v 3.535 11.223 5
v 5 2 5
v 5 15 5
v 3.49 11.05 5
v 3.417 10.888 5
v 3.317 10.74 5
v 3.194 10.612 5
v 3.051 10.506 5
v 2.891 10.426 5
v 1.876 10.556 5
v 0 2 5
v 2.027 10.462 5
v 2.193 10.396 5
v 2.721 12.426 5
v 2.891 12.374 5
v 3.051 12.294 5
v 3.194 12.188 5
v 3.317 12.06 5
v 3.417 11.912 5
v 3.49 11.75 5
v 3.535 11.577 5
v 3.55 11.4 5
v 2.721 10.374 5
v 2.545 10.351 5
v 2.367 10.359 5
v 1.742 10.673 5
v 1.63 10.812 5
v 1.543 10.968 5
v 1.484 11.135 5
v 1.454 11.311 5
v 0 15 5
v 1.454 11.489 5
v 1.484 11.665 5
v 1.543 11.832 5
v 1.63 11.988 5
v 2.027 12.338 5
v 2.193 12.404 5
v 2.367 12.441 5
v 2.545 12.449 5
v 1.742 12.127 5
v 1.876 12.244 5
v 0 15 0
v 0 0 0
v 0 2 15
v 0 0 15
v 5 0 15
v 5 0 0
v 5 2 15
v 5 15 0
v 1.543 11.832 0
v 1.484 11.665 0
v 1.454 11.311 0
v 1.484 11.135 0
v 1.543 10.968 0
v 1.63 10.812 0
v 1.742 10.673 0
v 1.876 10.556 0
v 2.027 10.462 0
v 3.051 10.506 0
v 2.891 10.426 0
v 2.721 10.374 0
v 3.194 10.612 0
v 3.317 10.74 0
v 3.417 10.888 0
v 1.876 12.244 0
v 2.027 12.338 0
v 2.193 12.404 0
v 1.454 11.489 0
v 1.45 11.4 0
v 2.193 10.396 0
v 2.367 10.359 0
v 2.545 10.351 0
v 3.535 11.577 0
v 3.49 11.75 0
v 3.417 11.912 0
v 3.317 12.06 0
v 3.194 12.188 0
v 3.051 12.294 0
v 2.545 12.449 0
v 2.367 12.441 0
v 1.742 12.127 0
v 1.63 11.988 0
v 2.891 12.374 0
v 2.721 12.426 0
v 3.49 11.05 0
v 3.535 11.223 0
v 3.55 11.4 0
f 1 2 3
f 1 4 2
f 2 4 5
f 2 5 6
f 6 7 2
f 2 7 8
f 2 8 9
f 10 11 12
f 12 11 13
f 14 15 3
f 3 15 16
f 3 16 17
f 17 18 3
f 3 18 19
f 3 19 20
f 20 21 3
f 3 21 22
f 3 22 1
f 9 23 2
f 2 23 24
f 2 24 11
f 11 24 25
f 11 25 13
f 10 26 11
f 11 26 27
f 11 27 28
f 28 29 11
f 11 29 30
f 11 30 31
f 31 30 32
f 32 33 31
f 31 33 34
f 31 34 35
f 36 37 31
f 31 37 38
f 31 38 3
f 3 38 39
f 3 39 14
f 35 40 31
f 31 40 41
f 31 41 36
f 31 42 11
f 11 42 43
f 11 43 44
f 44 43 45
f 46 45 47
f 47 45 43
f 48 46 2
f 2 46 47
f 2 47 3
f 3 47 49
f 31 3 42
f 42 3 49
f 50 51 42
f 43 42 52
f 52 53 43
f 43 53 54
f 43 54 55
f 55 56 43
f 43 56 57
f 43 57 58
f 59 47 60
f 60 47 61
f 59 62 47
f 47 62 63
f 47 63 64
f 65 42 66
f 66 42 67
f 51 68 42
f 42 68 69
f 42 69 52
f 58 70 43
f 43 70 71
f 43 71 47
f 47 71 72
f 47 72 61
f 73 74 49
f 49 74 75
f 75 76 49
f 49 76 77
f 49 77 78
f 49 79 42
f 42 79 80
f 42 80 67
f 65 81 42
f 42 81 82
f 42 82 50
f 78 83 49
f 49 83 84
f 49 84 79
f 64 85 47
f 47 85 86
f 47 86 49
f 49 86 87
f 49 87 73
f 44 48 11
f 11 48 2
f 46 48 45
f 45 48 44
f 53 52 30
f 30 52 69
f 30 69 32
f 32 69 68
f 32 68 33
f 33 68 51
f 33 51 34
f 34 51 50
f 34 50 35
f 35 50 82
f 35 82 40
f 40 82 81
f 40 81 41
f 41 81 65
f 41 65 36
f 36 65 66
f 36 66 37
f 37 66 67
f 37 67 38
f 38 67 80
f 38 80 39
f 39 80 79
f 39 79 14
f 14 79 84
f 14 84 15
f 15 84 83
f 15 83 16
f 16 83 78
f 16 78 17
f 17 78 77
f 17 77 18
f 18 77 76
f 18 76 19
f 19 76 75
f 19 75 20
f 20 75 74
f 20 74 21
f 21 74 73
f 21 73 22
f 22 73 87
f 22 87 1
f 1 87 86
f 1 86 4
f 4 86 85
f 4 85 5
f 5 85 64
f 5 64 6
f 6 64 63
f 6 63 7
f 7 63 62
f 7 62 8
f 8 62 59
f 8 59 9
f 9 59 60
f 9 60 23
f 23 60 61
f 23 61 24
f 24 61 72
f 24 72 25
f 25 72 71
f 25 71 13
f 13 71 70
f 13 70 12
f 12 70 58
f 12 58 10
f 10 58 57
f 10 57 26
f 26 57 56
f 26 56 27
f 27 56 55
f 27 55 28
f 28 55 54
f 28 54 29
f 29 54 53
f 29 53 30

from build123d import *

# Parameters (mm, degrees)
SKETCH1_W           = 5
SKETCH1_H           = 15
BOSS_EXTRUDE1_DEPTH = 5
SKETCH2_W           = 5
SKETCH2_H           = 2
BOSS_EXTRUDE2_DEPTH = 10
SKETCH3_R           = 1.05
CUT_EXTRUDE1_DEPTH  = 10


with BuildPart() as part:
    # Sketch1 → Boss-Extrude1 (new body)
    with BuildSketch(Plane.XY):
        with Locations((2.5, 7.5)):
            Rectangle(SKETCH1_W, SKETCH1_H)
    extrude(amount=BOSS_EXTRUDE1_DEPTH)

    # Sketch2 → Boss-Extrude2 (add)
    with BuildSketch(Plane.XY.offset(5)):
        with Locations((2.5, 1)):
            Rectangle(SKETCH2_W, SKETCH2_H)
    extrude(amount=BOSS_EXTRUDE2_DEPTH)

    # Sketch3 → Cut-Extrude1 (cut)
    with BuildSketch(Plane.XY.offset(5)):
        with Locations((2.5, 11.4)):
            Circle(SKETCH3_R)
    extrude(amount=-CUT_EXTRUDE1_DEPTH, mode=Mode.SUBTRACT)


solid = part.part
